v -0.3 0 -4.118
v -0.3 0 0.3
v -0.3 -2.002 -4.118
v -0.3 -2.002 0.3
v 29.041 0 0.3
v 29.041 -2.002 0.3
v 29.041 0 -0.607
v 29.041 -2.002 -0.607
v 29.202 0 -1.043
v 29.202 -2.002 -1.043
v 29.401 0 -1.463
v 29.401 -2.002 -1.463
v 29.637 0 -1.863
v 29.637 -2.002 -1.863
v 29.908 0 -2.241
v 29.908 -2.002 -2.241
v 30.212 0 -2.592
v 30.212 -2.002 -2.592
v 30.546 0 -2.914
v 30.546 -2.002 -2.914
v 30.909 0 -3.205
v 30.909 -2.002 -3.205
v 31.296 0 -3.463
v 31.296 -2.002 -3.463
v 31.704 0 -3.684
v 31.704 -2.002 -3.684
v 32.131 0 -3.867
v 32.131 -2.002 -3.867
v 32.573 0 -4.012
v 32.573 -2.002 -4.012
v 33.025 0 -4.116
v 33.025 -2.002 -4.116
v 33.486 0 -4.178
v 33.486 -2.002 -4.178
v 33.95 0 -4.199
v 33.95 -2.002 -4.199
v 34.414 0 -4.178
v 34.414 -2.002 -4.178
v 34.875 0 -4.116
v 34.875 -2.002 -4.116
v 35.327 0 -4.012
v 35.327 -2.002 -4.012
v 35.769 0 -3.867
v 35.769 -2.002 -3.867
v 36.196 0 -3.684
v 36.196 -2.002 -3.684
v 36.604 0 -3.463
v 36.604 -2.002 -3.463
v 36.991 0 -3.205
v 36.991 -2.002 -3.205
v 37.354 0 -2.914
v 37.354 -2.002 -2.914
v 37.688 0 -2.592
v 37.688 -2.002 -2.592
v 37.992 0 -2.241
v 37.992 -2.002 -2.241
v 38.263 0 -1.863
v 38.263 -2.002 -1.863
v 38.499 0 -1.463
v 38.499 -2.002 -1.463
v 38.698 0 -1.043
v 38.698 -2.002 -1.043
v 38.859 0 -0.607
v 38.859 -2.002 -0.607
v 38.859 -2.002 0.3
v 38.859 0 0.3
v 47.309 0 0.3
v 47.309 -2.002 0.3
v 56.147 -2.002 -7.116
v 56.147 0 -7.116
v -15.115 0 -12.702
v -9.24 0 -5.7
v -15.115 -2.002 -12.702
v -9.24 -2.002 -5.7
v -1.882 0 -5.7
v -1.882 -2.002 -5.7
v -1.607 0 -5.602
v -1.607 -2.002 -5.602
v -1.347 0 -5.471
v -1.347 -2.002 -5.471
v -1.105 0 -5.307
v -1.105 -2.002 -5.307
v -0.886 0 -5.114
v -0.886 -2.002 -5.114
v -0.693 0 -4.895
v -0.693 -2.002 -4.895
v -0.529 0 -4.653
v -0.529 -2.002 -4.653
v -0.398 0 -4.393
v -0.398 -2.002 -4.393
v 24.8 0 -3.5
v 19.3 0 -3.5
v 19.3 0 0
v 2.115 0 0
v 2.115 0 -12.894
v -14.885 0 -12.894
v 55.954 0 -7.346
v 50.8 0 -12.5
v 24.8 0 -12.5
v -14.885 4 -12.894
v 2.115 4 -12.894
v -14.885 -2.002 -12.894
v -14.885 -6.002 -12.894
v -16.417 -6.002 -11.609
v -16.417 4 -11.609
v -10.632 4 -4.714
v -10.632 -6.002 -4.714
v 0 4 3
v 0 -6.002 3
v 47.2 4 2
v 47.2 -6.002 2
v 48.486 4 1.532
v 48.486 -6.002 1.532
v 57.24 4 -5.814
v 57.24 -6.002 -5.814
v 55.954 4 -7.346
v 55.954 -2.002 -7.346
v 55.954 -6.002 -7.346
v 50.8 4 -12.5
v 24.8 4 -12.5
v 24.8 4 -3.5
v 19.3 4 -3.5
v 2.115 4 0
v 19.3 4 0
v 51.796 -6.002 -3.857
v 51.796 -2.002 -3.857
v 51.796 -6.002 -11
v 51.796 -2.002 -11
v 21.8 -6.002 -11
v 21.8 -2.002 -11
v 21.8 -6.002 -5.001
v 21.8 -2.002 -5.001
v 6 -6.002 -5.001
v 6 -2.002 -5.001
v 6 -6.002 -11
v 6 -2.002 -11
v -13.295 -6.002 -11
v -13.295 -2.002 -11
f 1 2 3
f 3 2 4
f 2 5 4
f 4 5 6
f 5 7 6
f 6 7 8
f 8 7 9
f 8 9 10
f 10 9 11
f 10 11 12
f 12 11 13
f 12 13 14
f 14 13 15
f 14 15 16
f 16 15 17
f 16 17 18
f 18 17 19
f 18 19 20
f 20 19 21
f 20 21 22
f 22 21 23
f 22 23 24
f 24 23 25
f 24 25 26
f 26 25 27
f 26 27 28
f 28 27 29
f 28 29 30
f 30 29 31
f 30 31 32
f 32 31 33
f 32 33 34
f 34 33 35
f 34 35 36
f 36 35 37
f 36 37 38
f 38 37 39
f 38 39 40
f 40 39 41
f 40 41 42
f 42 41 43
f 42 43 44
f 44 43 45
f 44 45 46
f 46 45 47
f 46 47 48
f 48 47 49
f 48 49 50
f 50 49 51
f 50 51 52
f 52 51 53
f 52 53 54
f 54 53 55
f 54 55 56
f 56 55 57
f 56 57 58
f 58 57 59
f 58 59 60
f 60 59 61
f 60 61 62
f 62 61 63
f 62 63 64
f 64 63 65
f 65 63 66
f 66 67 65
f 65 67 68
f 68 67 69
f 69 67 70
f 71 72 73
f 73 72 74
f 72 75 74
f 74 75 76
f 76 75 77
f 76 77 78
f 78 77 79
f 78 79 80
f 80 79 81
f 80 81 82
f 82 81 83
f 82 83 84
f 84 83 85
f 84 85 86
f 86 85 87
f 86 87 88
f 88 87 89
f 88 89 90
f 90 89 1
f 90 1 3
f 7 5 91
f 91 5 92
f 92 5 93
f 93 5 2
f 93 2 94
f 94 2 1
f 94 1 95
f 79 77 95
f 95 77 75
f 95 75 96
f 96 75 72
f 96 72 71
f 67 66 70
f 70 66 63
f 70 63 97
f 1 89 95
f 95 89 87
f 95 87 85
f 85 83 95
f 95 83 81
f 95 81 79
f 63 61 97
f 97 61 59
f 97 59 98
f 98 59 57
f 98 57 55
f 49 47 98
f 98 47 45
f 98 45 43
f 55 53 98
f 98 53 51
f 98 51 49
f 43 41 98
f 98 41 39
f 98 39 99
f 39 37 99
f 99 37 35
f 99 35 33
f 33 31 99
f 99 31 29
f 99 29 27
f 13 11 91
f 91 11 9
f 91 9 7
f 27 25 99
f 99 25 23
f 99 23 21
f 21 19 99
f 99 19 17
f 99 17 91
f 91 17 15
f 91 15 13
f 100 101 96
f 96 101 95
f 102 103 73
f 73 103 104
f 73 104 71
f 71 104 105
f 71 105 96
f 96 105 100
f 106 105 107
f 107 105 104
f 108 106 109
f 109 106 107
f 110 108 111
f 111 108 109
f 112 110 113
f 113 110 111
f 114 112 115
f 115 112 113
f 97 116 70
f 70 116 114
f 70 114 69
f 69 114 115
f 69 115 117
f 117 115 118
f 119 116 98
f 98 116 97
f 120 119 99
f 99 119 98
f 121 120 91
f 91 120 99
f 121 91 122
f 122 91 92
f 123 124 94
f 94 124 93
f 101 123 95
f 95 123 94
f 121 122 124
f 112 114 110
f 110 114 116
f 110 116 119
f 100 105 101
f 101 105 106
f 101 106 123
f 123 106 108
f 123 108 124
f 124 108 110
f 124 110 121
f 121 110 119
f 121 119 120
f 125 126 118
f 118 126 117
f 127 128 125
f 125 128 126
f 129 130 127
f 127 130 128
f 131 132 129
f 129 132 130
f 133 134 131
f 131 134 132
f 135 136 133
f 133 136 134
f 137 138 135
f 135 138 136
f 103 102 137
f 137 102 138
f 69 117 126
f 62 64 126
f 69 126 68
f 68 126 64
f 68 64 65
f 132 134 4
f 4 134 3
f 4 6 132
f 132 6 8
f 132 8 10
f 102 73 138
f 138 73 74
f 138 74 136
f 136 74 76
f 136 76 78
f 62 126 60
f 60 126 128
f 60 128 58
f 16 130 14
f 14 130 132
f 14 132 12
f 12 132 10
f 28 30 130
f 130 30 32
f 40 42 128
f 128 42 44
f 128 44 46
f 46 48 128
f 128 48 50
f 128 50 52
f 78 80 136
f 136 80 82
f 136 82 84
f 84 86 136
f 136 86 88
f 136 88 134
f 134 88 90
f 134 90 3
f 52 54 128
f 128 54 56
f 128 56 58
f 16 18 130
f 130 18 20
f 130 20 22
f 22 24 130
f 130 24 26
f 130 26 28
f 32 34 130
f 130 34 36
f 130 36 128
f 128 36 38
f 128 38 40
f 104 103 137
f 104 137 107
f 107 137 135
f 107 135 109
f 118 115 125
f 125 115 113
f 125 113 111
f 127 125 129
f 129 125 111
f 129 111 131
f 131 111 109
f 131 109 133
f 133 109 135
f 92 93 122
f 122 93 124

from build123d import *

# Parameters (mm, degrees)
SKETCH1_W                = 0.3
SKETCH1_H                = 0.3
BOSS_EXTRUDE1_DEPTH      = 4
SKETCH1_5_W              = 0.3
SKETCH1_5_H              = 0.3
BOSS_EXTRUDE2_DEPTH      = 4
BOSS_EXTRUDE3_DEPTH      = 3
BOSS_EXTRUDE4_DEPTH      = 3.00199999
BOSS_EXTRUDE4_DEPTH_BACK = 0.99800001
SKETCH3_W                = 4.5
SKETCH3_H                = 3.5
CUT_EXTRUDE1_DEPTH       = 4


with BuildPart() as part:
    # Sketch1 → Boss-Extrude1 (new body)
    with BuildSketch(Plane(origin=(0, 0, 0), x_dir=(1, 0, 0), z_dir=(0, 1, 0))):
        Polygon((2.114911513, 12.894399988), (-14.885088487, 12.894399988), (-16.417177373, 11.608824769), (-10.632088886, 4.714424781), (0, -3), (47.2, -2), (48.485575219, -1.532088886), (57.239858961, 5.813627372), (55.954283741, 7.345716259), (50.8, 12.5), (24.8, 12.5), (24.8, 3.5), (14.8, 3.5), (14.8, 0), (2.114911513, 0), align=None)
        with Locations((-0.15, -0.15)):
            Rectangle(SKETCH1_W, SKETCH1_H, mode=Mode.SUBTRACT)
        Polygon((47.30919107, -0.3), (47.2, -0.3), (47.2, 0), (47.392836283, -0.229813333), align=None, mode=Mode.SUBTRACT)
    extrude(amount=BOSS_EXTRUDE1_DEPTH)

    # Sketch1<5> → Boss-Extrude2 (add)
    with BuildSketch(Plane(origin=(0, 0, 0), x_dir=(1, 0, 0), z_dir=(0, 1, 0))):
        with Locations((-0.15, -0.15)):
            Rectangle(SKETCH1_5_W, SKETCH1_5_H)
        Polygon((47.2, 0), (47.2, -0.3), (47.30919107, -0.3), (47.392836283, -0.229813333), align=None)
    extrude(amount=BOSS_EXTRUDE2_DEPTH)

    # Sketch1<6> → Boss-Extrude3 (add)
    with BuildSketch(Plane(origin=(0, 0, 0), x_dir=(1, 0, 0), z_dir=(0, 1, 0))):
        with BuildLine():
            Line((-0.3, -0.3), (-0.3, 4.117528082))
            ThreePointArc((-0.3, 4.117528082), (-0.885786438, 5.114213562), (-1.882471918, 5.7))
            Line((-1.882471918, 5.7), (-9.239892297, 5.7))
            Line((-9.239892297, 5.7), (-15.11490182, 12.701563705))
            Line((-15.11490182, 12.701563705), (-16.417177373, 11.608824769))
            Line((-16.417177373, 11.608824769), (-10.632088886, 4.714424781))
            Line((-10.632088886, 4.714424781), (0, -3))
            Line((0, -3), (47.2, -2))
            Line((47.2, -2), (48.485575219, -1.532088886))
            Line((48.485575219, -1.532088886), (57.239858961, 5.813627372))
            Line((57.239858961, 5.813627372), (56.147120024, 7.115902926))
            Line((56.147120024, 7.115902926), (47.30919107, -0.3))
            Line((47.30919107, -0.3), (38.858723672, -0.3))
            Line((38.858723672, -0.3), (38.858723672, 0.607136774))
            ThreePointArc((38.858723672, 0.607136774), (33.95, 4.199275448), (29.041276328, 0.607136774))
            Line((29.041276328, 0.607136774), (29.041276328, -0.3))
            Line((29.041276328, -0.3), (-0.3, -0.3))
        make_face()
    extrude(amount=-BOSS_EXTRUDE3_DEPTH)

    # Sketch2 → Boss-Extrude4 (add, two sides: drawn at the far end of the back side and taken through both)
    with BuildSketch(Plane(origin=(0, -3, 0), x_dir=(-1, 0, 0), z_dir=(0, -1, 0)).offset(-BOSS_EXTRUDE4_DEPTH_BACK)):
        Polygon((-55.954283741, 7.345716259), (-57.239858961, 5.813627372), (-48.485575219, -1.532088886), (-47.2, -2), (0, -3), (10.632088886, 4.714424781), (16.417177373, 11.608824769), (14.885088487, 12.894399988), (13.295498156, 11), (-6, 11), (-6, 5.000587023), (-21.8, 5.000587023), (-21.8, 11), (-51.796266659, 11), (-51.796266659, 3.856725658), align=None)
    extrude(amount=BOSS_EXTRUDE4_DEPTH + BOSS_EXTRUDE4_DEPTH_BACK)

    # Sketch3 → Cut-Extrude1 (cut)
    with BuildSketch(Plane(origin=(0, 4, 0), x_dir=(1, 0, 0), z_dir=(0, 1, 0))):
        with Locations((17.05, 1.75)):
            Rectangle(SKETCH3_W, SKETCH3_H)
    extrude(amount=-CUT_EXTRUDE1_DEPTH, mode=Mode.SUBTRACT)


solid = part.part
